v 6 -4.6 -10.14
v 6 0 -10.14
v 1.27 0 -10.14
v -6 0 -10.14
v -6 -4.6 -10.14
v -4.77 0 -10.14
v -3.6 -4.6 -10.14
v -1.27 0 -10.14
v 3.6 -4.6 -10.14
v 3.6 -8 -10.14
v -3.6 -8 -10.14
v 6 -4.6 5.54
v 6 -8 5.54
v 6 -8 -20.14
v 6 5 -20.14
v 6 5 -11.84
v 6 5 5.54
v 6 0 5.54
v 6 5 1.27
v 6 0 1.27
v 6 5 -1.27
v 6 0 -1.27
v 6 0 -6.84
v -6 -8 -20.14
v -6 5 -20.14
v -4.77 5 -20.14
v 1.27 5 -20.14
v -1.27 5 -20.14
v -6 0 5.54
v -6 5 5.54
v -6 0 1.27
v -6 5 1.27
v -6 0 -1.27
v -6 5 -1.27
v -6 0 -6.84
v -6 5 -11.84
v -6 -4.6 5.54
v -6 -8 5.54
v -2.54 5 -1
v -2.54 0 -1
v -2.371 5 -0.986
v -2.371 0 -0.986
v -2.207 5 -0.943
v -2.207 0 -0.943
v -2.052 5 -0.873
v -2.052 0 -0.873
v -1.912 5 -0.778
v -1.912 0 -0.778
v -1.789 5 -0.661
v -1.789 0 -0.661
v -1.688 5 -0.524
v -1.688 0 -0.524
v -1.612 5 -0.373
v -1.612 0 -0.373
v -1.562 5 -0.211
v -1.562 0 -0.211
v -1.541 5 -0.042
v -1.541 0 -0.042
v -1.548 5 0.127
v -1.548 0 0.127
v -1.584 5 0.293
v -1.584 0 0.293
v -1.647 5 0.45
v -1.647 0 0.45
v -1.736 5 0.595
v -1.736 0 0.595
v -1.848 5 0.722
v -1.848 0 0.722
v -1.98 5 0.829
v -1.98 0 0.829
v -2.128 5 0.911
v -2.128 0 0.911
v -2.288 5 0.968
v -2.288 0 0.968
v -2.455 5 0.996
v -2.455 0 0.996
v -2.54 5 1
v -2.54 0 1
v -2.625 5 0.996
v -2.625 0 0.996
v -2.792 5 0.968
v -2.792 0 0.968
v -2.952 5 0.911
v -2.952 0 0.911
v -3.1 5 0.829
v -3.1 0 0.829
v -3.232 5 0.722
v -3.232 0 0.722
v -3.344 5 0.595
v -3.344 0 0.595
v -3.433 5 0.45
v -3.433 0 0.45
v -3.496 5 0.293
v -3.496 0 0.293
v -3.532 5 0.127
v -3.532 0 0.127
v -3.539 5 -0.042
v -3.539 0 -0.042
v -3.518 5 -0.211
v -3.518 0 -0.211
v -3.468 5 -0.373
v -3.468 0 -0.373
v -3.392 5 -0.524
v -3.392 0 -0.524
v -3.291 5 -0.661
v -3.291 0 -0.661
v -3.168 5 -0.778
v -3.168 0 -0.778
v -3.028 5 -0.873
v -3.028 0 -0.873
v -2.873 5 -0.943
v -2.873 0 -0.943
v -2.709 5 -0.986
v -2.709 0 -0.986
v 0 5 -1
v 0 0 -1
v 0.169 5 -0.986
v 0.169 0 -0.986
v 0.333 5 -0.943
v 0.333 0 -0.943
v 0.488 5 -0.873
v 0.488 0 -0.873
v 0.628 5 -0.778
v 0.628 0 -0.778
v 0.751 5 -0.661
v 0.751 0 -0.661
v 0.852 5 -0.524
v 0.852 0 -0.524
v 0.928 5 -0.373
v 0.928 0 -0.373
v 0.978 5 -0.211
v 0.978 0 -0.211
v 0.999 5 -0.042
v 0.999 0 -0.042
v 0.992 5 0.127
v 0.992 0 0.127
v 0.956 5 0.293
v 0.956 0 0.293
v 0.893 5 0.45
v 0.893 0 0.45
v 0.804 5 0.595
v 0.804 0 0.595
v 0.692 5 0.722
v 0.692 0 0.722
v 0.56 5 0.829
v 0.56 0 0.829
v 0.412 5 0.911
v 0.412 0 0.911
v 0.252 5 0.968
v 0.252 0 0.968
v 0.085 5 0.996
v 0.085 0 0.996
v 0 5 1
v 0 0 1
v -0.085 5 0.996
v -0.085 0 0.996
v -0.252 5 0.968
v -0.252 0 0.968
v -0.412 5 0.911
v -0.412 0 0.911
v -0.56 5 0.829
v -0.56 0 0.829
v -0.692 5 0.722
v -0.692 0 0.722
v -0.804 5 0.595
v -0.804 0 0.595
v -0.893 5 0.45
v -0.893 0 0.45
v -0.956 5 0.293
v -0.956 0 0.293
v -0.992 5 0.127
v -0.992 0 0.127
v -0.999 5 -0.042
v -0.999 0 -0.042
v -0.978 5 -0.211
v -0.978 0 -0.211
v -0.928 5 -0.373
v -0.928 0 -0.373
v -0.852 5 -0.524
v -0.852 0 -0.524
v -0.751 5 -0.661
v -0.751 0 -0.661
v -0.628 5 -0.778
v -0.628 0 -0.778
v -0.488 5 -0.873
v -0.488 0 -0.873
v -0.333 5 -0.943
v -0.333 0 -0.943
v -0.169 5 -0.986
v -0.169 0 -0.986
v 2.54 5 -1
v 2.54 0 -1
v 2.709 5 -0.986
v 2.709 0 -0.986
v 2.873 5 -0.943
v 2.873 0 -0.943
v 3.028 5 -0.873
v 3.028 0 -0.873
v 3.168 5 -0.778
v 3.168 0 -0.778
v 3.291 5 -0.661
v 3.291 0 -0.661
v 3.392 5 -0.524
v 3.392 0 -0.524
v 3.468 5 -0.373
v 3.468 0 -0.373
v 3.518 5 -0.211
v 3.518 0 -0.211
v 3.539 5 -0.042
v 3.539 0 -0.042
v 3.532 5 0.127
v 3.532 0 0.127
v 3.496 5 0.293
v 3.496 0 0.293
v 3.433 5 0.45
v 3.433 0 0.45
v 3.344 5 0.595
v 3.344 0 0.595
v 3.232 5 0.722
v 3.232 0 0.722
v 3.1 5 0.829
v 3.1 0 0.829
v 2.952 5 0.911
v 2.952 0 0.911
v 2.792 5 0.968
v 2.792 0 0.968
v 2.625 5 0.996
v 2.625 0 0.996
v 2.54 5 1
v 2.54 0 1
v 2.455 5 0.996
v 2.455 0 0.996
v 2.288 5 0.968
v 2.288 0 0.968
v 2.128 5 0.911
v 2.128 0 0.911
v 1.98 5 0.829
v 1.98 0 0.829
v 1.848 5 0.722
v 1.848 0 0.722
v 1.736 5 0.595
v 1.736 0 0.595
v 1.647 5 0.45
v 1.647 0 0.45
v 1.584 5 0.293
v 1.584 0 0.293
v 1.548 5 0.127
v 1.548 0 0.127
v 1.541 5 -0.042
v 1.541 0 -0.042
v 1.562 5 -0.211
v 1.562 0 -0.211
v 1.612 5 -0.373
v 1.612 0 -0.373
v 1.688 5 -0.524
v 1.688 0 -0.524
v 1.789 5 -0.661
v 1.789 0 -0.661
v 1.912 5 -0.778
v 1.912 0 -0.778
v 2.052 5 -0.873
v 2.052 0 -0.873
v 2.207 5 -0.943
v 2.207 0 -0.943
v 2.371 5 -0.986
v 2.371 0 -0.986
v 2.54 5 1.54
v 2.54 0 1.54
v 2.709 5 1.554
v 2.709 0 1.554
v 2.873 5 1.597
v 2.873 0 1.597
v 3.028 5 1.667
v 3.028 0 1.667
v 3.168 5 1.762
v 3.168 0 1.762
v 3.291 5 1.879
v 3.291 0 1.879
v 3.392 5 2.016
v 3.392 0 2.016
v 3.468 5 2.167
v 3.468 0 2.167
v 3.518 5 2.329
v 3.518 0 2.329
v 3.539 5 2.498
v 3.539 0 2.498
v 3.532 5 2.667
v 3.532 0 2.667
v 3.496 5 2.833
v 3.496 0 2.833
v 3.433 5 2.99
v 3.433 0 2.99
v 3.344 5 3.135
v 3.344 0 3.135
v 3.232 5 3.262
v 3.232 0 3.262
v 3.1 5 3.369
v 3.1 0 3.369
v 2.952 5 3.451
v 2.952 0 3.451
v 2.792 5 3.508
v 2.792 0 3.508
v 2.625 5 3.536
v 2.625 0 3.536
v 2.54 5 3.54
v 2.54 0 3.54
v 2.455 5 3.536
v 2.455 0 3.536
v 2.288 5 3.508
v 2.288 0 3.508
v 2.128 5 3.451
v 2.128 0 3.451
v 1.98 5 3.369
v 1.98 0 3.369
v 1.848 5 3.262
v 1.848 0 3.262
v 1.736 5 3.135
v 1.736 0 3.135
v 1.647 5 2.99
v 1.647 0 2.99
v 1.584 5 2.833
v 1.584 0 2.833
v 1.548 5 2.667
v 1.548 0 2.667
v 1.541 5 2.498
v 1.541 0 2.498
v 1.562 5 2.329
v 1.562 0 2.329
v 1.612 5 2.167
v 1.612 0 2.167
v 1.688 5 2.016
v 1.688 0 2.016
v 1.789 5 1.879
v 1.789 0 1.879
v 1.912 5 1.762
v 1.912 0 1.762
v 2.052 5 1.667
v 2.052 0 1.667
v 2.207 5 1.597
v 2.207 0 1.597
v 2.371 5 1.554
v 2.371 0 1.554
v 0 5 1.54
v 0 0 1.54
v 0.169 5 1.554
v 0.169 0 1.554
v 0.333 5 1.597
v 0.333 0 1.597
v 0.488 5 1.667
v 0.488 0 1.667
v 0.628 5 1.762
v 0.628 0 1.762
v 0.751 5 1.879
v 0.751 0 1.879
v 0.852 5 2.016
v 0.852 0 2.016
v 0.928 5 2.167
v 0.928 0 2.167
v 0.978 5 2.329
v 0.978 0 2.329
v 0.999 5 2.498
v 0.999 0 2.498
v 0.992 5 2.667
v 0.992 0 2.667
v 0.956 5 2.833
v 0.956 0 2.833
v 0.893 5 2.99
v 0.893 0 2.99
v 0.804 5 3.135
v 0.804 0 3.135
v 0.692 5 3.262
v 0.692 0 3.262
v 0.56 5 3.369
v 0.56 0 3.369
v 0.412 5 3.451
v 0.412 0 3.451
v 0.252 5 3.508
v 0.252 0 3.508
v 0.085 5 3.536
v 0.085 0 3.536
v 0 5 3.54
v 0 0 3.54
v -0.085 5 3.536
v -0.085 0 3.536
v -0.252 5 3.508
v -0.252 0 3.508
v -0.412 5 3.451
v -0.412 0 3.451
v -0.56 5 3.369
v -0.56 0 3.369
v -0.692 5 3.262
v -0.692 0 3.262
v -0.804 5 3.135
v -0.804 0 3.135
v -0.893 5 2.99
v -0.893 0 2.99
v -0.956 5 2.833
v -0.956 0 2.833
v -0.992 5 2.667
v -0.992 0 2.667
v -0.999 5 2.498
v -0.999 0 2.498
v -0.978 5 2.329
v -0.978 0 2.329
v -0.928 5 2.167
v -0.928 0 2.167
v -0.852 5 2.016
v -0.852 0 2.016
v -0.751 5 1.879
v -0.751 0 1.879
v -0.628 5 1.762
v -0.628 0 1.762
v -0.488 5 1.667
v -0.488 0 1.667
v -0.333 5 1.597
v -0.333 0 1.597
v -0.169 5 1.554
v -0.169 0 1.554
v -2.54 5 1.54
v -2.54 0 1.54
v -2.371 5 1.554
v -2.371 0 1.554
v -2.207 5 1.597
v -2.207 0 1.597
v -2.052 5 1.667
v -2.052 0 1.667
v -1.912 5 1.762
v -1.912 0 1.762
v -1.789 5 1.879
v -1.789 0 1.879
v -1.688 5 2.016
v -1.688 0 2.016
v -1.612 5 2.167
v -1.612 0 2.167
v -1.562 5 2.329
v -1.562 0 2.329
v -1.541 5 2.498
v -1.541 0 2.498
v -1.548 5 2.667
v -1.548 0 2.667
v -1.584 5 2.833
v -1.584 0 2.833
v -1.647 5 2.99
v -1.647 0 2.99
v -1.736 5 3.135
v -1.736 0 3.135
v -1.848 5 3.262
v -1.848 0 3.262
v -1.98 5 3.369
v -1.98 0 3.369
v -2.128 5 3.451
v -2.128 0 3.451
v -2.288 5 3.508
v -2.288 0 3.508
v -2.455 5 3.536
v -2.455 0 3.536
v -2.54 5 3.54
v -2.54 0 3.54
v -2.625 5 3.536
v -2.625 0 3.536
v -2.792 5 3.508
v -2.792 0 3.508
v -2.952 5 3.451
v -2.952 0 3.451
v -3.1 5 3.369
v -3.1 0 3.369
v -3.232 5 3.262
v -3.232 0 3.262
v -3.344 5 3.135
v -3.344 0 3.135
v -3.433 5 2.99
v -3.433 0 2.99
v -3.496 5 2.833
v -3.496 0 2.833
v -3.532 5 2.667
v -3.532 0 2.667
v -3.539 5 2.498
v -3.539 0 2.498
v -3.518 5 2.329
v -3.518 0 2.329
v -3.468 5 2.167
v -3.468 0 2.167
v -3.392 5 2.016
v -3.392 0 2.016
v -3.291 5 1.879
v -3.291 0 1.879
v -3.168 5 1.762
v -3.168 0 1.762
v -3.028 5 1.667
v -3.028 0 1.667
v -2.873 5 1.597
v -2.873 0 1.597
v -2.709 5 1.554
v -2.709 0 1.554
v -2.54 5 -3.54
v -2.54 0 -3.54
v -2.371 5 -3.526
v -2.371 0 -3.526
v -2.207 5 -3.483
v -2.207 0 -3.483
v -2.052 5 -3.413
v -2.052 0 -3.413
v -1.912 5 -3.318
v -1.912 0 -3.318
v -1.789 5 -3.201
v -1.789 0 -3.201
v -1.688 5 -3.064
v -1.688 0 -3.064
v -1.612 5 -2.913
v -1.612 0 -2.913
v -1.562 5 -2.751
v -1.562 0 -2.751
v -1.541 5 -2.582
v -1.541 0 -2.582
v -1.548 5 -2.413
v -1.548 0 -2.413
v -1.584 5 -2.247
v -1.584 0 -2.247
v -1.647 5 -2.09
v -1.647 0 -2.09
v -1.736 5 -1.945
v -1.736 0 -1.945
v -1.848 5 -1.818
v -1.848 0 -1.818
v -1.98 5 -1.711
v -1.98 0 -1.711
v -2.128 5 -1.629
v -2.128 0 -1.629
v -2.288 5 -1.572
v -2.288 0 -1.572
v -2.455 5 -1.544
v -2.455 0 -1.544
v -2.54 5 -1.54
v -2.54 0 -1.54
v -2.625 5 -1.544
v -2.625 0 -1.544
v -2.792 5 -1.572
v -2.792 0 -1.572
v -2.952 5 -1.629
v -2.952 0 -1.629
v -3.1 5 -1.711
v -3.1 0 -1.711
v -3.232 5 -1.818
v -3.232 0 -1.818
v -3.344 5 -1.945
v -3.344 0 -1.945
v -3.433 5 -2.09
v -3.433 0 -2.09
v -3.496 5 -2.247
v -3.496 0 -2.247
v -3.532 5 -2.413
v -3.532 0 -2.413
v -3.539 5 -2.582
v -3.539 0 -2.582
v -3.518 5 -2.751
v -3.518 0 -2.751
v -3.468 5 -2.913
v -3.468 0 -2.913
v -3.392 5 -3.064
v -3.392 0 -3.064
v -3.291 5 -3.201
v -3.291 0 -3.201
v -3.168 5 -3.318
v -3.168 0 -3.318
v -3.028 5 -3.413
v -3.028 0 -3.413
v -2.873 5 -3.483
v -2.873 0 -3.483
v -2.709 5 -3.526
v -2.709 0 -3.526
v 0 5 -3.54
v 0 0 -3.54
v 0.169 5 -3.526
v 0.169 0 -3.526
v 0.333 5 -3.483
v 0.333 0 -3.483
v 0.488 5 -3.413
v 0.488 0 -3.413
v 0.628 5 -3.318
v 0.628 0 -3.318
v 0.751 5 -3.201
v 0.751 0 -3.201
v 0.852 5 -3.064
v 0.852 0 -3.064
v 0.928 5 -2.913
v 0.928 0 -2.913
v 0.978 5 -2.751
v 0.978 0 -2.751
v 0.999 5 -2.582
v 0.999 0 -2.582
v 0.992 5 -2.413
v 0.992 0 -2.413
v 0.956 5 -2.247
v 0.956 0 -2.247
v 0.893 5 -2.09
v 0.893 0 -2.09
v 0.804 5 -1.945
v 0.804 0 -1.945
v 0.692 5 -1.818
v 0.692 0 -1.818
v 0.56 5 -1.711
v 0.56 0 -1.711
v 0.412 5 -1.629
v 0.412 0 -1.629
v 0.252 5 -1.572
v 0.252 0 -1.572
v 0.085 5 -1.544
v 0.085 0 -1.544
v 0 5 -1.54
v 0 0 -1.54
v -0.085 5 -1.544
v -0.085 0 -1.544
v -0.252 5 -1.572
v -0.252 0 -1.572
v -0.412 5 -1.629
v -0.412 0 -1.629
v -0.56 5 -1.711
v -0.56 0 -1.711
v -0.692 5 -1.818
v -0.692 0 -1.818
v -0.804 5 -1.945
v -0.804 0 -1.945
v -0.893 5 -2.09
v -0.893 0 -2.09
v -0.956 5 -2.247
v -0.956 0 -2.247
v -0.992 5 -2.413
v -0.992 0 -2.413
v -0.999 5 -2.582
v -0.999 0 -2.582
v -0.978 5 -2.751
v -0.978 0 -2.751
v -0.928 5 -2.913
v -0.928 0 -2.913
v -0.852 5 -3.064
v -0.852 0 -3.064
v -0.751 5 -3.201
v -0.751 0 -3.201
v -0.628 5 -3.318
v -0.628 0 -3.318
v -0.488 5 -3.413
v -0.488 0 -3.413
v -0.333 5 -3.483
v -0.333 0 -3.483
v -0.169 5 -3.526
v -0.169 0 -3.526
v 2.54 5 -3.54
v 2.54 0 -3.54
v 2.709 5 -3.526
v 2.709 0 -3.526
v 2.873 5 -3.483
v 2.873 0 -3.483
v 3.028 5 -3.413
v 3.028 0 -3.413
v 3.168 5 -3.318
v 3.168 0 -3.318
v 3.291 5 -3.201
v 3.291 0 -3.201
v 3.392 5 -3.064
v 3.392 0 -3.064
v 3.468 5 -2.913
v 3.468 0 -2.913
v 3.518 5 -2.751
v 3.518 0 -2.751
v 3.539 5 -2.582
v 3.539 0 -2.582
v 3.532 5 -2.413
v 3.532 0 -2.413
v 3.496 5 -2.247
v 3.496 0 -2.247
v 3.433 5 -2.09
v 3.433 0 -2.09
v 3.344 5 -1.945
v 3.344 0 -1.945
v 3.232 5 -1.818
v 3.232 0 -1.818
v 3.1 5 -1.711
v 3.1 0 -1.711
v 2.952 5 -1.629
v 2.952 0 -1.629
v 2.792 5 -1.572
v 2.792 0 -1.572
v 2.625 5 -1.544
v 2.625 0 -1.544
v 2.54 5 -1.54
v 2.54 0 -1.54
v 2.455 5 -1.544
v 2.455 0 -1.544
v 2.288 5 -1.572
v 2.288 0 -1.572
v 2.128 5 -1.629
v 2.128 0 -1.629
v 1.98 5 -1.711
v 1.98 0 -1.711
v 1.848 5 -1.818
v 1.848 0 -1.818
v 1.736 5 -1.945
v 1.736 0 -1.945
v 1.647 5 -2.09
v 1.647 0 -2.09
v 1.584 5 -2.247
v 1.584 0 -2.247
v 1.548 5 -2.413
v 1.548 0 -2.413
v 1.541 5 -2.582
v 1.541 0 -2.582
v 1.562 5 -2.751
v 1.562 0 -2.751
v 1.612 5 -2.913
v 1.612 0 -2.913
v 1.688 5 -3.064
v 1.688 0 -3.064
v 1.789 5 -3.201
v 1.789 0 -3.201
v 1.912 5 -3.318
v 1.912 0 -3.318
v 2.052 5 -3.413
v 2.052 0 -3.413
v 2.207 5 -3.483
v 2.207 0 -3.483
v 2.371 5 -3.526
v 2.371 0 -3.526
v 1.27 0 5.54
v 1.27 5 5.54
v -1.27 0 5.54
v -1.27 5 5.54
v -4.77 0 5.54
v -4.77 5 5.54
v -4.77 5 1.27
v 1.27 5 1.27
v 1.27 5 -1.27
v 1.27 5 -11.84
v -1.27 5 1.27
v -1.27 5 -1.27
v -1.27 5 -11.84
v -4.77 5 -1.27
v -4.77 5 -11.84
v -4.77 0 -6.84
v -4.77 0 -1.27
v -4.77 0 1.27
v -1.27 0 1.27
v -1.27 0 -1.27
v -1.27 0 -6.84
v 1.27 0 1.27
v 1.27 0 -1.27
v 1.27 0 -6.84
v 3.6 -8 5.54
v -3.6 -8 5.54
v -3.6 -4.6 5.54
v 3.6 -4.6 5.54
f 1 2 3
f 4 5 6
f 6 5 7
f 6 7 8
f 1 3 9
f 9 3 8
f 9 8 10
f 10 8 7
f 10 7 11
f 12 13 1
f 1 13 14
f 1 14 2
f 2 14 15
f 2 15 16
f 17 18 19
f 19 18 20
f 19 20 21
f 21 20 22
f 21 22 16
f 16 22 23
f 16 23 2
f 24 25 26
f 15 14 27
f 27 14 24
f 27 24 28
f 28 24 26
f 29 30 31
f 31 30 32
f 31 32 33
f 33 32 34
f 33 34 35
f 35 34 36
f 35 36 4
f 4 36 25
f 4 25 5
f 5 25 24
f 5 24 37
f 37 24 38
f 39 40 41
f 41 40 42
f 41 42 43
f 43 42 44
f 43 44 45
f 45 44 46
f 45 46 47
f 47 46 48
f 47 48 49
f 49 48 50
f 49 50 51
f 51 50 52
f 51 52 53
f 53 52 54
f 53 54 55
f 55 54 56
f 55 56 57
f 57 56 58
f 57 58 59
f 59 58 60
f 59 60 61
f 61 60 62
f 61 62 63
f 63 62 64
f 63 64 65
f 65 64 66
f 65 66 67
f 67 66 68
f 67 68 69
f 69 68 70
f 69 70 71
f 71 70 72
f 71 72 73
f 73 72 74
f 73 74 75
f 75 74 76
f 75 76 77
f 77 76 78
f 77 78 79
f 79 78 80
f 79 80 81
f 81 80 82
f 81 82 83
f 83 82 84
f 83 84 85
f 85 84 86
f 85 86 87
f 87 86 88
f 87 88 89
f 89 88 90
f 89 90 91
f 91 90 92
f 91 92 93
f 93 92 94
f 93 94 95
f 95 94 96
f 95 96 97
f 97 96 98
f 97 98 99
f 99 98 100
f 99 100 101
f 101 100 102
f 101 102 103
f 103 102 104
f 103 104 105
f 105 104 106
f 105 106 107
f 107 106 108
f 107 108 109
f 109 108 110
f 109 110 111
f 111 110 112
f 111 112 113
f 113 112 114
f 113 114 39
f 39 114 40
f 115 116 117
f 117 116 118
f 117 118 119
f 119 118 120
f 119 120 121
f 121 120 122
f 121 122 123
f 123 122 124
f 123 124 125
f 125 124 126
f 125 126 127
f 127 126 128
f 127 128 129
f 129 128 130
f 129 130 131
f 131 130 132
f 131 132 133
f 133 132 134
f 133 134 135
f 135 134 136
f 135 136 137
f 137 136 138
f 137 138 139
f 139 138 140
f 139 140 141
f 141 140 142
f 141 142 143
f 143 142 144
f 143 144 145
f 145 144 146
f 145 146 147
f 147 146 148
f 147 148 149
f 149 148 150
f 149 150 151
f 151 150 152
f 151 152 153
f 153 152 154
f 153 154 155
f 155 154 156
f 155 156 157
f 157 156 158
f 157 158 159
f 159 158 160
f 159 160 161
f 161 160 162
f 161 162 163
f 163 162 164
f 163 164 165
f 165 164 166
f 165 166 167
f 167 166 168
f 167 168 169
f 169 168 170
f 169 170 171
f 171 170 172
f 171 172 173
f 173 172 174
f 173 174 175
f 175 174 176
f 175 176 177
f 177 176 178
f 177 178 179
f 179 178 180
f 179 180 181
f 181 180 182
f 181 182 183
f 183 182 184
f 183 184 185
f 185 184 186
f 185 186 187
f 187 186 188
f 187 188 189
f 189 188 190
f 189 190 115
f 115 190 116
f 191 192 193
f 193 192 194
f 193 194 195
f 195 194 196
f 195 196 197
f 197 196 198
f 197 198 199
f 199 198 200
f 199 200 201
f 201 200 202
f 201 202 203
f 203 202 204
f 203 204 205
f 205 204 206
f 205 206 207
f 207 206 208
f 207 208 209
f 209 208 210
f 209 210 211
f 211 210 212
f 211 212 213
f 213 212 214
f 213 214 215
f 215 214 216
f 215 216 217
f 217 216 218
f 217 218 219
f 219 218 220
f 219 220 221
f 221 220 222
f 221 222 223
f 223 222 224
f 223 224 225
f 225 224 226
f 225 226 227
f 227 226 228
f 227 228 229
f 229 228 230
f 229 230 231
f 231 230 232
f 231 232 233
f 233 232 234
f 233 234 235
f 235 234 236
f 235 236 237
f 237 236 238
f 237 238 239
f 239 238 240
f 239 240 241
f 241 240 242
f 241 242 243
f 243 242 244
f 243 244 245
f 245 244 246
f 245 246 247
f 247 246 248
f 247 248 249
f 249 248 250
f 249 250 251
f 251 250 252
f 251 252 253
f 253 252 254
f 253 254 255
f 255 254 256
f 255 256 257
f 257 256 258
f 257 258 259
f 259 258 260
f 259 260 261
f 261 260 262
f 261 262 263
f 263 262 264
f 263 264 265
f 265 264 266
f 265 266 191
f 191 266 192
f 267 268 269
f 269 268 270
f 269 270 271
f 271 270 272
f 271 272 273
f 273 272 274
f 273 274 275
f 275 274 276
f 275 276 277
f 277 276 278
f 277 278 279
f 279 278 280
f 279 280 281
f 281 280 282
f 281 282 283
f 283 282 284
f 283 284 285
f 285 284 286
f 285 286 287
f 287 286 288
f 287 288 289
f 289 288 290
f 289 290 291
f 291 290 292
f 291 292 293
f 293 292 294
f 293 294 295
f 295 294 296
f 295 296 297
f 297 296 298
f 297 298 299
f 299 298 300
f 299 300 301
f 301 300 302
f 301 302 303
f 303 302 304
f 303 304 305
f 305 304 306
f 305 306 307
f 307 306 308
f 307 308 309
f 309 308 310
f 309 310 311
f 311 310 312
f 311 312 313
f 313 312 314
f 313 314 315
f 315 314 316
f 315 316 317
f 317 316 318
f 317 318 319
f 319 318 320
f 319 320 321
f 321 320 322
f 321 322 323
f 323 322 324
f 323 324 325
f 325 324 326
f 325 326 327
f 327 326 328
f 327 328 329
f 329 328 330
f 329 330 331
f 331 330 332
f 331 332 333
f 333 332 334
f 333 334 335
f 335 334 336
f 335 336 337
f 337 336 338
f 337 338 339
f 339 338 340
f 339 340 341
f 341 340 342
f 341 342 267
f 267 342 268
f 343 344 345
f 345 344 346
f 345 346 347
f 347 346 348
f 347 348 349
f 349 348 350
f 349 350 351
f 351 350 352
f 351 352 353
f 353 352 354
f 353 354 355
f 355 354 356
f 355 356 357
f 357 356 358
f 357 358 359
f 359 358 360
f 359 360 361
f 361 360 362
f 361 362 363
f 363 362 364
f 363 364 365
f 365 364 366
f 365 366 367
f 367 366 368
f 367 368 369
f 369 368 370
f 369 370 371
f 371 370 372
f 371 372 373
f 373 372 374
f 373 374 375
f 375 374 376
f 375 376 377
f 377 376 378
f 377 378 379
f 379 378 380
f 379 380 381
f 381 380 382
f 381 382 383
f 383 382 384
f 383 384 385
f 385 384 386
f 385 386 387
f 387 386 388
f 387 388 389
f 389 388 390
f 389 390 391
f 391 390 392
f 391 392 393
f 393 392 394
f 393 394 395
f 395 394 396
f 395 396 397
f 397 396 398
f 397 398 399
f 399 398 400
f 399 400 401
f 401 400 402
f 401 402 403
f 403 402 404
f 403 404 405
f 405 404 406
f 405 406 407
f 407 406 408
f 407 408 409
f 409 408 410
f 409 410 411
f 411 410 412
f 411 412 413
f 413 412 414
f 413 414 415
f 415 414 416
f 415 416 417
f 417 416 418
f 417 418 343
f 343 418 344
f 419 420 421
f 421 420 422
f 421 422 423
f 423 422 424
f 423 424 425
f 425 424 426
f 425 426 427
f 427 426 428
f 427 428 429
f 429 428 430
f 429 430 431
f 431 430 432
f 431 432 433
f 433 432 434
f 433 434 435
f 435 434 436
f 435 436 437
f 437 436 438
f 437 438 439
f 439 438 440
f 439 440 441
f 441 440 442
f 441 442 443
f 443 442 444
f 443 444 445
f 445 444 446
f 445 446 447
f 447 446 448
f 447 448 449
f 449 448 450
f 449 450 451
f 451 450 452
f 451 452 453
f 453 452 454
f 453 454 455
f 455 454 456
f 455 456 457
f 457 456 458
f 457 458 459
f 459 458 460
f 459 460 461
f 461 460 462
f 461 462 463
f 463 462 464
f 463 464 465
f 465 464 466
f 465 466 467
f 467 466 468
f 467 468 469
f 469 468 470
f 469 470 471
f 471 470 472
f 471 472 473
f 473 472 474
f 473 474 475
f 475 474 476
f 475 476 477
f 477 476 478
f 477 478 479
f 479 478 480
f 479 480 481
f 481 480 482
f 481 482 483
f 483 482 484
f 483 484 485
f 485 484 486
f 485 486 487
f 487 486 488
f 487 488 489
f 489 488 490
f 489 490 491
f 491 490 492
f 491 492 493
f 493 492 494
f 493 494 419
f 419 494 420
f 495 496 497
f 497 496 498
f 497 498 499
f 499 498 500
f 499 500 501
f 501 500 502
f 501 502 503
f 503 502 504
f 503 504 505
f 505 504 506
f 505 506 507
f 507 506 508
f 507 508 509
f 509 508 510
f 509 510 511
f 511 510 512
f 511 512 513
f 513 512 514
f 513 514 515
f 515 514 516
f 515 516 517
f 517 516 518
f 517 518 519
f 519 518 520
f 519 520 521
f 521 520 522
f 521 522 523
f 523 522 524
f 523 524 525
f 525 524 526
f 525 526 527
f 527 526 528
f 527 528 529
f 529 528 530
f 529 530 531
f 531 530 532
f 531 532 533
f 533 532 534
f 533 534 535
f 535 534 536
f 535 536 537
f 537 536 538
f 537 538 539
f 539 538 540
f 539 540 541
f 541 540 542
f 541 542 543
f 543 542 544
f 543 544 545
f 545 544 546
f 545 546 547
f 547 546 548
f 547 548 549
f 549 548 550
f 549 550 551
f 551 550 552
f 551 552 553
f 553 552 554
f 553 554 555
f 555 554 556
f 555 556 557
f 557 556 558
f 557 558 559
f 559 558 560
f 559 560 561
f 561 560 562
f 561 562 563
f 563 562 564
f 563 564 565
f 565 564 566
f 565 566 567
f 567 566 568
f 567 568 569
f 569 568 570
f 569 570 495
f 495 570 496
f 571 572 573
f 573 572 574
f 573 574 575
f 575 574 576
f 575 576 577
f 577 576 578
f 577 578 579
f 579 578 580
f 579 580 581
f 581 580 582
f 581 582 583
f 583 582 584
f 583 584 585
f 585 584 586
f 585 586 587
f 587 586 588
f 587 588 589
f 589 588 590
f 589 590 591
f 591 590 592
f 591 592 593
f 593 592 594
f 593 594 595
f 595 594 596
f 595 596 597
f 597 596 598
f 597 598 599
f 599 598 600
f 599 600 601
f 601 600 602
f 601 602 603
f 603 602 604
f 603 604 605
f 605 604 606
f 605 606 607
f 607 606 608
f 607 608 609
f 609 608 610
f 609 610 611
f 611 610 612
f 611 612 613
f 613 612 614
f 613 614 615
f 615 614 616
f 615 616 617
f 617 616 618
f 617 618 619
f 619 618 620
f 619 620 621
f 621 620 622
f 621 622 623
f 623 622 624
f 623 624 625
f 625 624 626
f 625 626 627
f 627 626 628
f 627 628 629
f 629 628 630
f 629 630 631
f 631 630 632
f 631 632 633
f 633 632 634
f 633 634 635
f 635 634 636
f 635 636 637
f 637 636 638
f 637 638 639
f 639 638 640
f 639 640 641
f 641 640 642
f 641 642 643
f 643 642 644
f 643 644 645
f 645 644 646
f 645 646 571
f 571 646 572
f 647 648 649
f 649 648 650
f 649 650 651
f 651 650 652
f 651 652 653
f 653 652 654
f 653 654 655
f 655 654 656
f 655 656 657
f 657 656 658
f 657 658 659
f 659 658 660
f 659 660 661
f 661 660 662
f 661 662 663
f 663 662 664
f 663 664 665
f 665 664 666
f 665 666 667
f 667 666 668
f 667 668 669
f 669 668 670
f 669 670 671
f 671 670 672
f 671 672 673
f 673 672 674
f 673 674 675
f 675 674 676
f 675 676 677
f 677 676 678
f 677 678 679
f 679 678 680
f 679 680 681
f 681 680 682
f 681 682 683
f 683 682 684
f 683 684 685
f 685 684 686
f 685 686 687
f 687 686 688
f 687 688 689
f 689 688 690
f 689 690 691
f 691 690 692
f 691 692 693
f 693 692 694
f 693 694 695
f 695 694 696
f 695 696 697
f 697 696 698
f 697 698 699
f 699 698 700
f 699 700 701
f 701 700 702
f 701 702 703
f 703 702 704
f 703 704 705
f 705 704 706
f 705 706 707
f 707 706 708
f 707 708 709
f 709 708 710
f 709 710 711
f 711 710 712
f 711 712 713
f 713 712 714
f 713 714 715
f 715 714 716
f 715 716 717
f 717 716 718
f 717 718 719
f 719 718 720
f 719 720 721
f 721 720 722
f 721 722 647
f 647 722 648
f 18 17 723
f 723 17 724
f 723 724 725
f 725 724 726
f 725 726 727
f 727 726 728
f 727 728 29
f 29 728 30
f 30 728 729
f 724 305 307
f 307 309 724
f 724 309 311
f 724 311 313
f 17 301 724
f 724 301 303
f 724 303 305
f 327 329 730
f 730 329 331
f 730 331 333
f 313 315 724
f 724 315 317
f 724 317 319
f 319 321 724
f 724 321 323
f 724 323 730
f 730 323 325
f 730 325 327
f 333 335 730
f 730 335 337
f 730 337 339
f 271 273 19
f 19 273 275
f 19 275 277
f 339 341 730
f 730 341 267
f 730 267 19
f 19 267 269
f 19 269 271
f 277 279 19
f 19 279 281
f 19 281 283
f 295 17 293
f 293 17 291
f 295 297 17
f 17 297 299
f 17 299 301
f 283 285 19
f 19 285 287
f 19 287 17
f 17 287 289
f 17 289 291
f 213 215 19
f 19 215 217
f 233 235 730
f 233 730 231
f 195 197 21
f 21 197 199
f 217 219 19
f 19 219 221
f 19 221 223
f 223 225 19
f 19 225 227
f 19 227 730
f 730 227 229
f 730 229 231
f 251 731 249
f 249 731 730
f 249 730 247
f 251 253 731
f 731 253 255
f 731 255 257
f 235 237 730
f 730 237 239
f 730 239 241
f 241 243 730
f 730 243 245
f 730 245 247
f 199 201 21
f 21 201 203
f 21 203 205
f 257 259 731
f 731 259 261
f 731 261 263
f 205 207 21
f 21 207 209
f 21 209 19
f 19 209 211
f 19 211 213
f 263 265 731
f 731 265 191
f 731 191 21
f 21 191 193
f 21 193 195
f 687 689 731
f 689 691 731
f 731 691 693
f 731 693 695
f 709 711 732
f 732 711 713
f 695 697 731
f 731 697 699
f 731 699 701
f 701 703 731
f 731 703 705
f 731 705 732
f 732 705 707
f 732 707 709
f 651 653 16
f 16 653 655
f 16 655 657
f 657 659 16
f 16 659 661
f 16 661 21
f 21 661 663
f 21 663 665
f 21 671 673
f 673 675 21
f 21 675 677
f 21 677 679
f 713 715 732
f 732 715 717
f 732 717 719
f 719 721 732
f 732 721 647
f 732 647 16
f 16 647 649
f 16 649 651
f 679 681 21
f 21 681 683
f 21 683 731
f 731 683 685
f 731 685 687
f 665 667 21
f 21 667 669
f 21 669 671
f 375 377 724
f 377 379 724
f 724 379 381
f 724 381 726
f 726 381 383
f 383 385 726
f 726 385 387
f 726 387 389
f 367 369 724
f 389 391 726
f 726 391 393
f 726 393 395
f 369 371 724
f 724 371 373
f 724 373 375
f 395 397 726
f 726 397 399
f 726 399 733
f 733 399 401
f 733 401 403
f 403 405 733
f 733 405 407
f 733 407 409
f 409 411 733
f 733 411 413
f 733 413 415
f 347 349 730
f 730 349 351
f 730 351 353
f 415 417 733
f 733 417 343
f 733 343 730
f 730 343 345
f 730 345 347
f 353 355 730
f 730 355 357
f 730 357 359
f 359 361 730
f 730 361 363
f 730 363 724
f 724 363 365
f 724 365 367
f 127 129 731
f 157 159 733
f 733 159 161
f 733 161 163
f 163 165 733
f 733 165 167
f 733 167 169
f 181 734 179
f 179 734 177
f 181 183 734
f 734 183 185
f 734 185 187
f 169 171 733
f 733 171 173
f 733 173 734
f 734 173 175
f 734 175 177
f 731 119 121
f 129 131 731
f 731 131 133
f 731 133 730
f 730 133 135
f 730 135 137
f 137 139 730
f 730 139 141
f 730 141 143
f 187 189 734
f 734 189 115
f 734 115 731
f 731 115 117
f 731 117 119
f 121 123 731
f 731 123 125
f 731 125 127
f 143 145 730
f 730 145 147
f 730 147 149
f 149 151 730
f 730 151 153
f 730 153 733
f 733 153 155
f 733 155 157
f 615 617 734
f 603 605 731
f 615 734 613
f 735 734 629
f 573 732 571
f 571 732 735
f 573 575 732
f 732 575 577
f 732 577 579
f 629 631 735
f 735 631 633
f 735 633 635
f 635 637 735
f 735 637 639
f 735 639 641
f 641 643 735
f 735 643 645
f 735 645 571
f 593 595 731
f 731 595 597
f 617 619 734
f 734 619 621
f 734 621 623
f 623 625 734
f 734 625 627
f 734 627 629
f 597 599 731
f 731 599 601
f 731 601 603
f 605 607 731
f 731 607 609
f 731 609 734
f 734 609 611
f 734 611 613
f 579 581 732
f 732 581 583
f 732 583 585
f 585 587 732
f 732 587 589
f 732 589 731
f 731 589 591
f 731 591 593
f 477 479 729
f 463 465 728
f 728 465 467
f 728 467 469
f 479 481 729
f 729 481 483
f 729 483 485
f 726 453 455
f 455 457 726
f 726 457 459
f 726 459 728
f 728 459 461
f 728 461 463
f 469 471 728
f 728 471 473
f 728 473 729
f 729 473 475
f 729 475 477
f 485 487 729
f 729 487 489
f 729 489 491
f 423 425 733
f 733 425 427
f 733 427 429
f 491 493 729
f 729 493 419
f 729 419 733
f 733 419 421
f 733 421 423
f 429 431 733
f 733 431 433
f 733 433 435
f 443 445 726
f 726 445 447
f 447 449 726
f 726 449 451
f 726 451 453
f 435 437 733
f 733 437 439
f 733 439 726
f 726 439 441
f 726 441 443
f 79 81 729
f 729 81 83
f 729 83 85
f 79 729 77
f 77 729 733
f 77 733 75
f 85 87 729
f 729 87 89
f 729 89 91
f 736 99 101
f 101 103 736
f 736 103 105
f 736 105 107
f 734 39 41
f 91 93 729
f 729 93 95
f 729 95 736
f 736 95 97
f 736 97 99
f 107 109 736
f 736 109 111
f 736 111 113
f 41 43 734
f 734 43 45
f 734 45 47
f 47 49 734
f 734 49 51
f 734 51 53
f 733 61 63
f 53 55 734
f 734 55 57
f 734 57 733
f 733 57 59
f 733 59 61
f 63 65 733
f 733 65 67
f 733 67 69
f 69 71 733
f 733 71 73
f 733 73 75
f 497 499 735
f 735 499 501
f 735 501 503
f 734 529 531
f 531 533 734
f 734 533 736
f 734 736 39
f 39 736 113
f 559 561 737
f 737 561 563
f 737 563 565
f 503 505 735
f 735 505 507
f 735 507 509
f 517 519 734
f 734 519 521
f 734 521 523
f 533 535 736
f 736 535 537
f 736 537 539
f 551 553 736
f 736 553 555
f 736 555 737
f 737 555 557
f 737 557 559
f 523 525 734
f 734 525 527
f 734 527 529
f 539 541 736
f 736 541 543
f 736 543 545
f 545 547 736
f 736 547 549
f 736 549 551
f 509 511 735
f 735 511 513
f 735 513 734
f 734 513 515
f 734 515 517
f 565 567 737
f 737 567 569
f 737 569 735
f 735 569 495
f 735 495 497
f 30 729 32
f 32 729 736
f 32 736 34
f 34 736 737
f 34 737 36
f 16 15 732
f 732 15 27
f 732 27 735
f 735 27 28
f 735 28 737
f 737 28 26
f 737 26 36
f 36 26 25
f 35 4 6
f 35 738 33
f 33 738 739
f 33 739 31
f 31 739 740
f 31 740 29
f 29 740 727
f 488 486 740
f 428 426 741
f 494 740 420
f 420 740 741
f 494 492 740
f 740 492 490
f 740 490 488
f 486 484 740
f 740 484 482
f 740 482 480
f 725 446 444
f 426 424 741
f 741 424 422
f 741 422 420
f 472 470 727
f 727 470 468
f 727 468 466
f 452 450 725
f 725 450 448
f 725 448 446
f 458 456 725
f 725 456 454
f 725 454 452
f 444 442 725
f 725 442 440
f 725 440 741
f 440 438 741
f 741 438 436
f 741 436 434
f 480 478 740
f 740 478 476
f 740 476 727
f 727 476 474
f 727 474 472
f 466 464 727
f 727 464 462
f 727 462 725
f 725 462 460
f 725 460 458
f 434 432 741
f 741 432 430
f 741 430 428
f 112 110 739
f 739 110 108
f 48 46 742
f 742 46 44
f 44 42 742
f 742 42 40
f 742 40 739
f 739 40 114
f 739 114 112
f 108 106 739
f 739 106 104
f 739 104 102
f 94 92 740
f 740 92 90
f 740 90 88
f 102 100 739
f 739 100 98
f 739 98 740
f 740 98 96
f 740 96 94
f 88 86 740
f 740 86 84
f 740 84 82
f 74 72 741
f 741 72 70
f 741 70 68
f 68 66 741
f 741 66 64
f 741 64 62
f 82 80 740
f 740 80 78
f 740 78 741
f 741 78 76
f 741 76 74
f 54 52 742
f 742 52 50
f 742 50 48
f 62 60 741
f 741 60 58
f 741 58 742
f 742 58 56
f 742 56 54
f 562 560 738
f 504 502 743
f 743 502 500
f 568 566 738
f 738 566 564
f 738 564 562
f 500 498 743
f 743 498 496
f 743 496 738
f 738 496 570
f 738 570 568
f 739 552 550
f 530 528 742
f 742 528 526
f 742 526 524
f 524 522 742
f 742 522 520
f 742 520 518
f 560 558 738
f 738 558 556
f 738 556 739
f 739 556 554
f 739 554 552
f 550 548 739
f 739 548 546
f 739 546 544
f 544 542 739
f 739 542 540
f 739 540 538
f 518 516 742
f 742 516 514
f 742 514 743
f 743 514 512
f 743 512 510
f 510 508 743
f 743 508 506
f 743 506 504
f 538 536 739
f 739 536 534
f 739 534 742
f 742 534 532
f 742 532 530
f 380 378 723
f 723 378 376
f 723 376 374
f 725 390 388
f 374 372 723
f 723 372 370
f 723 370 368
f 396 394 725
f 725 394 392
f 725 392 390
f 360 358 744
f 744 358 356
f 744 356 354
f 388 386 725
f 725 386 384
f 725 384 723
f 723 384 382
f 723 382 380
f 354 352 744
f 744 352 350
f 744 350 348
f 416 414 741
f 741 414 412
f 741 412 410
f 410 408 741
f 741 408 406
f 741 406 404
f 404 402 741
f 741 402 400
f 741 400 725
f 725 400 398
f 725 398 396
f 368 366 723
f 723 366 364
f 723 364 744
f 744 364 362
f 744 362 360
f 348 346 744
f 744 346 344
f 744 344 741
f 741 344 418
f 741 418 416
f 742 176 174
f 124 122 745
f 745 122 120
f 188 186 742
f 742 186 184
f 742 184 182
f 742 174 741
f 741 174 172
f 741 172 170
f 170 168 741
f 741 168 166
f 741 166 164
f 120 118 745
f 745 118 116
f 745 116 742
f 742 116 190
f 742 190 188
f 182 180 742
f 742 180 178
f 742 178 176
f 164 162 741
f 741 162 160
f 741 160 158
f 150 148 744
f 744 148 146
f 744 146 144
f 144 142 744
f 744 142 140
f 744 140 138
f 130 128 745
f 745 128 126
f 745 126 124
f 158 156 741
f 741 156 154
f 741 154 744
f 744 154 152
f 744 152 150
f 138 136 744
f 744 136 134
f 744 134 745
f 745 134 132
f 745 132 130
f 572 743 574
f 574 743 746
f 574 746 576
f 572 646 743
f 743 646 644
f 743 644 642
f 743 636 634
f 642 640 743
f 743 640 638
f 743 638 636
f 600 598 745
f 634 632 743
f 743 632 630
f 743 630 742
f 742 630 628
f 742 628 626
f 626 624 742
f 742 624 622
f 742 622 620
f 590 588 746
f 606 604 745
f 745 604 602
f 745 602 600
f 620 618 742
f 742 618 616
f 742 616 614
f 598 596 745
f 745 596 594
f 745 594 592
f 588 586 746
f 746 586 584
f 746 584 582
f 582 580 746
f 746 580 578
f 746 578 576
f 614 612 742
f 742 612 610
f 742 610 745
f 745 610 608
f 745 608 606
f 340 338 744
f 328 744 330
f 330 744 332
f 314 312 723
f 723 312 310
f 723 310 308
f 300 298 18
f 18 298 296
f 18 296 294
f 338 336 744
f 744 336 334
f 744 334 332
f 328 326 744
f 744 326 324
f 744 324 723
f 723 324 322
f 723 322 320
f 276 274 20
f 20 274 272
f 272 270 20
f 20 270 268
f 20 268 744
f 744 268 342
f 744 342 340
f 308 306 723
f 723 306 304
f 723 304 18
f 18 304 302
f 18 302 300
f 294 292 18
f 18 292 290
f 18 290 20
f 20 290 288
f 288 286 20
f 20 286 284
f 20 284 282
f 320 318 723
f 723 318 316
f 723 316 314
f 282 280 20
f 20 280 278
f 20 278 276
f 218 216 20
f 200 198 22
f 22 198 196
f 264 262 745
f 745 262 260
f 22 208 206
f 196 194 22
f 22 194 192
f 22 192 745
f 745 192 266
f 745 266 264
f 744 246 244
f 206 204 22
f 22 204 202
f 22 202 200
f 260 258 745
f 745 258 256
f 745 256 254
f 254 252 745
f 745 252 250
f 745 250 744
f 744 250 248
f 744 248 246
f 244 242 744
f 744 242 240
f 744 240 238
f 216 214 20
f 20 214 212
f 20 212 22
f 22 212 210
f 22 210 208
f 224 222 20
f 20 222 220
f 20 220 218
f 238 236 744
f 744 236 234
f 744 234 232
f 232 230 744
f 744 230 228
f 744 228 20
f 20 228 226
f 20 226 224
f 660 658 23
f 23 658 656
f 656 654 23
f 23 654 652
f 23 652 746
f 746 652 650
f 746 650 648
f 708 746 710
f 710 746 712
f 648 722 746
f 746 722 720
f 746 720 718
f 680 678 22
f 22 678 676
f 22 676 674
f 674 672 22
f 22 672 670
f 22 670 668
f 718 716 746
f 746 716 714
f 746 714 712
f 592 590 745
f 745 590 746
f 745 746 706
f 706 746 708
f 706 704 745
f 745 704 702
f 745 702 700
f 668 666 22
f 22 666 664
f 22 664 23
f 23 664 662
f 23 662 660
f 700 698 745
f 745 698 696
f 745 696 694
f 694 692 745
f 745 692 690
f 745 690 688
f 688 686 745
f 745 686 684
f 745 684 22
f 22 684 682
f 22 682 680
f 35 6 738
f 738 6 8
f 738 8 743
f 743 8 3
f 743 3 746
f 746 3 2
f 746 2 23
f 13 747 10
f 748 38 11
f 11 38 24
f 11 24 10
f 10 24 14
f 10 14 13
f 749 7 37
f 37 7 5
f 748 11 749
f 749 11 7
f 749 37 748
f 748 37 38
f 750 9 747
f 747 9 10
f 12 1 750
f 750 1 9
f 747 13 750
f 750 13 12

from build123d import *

# Parameters (mm, degrees)
SKETCH1_W           = 12
SKETCH1_H           = 10
SKETCH1_H_2         = 15.68
SKETCH1_R           = 1
BOSS_EXTRUDE1_DEPTH = 5
SKETCH1_3_W         = 12
SKETCH1_3_H         = 10
BOSS_EXTRUDE2_DEPTH = 8
SKETCH2_W           = 2.4
SKETCH2_H           = 3.4
BOSS_EXTRUDE3_DEPTH = 15.68


with BuildPart() as part:
    # Sketch1 → Boss-Extrude1 (new body)
    # profile 1 of 2: a face of its own
    with BuildSketch(Plane(origin=(0, 0, 0), x_dir=(1, 0, 0), z_dir=(0, 1, 0))):
        with Locations((0, 15.14)):
            Rectangle(SKETCH1_W, SKETCH1_H)
    # profile 2 of 2: a face of its own
    with BuildSketch(Plane(origin=(0, 0, 0), x_dir=(1, 0, 0), z_dir=(0, 1, 0))):
        with Locations((0, 2.3)):
            Rectangle(SKETCH1_W, SKETCH1_H_2)
        with Locations(Location((-2.54, -2.54, 0), (0, 0, 270))):
            Circle(SKETCH1_R, mode=Mode.SUBTRACT)
        with Locations(Location((-2.54, 0, 0), (0, 0, 270))):
            Circle(SKETCH1_R, mode=Mode.SUBTRACT)
        with Locations(Location((0, 0, 0), (0, 0, 270))):
            Circle(SKETCH1_R, mode=Mode.SUBTRACT)
        with Locations(Location((-2.54, 2.54, 0), (0, 0, 270))):
            Circle(SKETCH1_R, mode=Mode.SUBTRACT)
        with Locations(Location((0, 2.54, 0), (0, 0, 270))):
            Circle(SKETCH1_R, mode=Mode.SUBTRACT)
        with Locations(Location((0, -2.54, 0), (0, 0, 270))):
            Circle(SKETCH1_R, mode=Mode.SUBTRACT)
        with Locations(Location((2.54, -2.54, 0), (0, 0, 270))):
            Circle(SKETCH1_R, mode=Mode.SUBTRACT)
        with Locations(Location((2.54, 0, 0), (0, 0, 270))):
            Circle(SKETCH1_R, mode=Mode.SUBTRACT)
        with Locations(Location((2.54, 2.54, 0), (0, 0, 270))):
            Circle(SKETCH1_R, mode=Mode.SUBTRACT)
    extrude(amount=BOSS_EXTRUDE1_DEPTH)

    # Sketch1<3> → Boss-Extrude2 (add)
    with BuildSketch(Plane(origin=(0, 0, 0), x_dir=(1, 0, 0), z_dir=(0, 1, 0))):
        with Locations((0, 15.14)):
            Rectangle(SKETCH1_3_W, SKETCH1_3_H)
    extrude(amount=-BOSS_EXTRUDE2_DEPTH)

    # Sketch2 → Boss-Extrude3 (add)
    with BuildSketch(Plane.XY.offset(-10.14)):
        with Locations((-4.8, -6.3)):
            Rectangle(SKETCH2_W, SKETCH2_H)
        with Locations((4.8, -6.3)):
            Rectangle(SKETCH2_W, SKETCH2_H)
    extrude(amount=BOSS_EXTRUDE3_DEPTH)


solid = part.part
